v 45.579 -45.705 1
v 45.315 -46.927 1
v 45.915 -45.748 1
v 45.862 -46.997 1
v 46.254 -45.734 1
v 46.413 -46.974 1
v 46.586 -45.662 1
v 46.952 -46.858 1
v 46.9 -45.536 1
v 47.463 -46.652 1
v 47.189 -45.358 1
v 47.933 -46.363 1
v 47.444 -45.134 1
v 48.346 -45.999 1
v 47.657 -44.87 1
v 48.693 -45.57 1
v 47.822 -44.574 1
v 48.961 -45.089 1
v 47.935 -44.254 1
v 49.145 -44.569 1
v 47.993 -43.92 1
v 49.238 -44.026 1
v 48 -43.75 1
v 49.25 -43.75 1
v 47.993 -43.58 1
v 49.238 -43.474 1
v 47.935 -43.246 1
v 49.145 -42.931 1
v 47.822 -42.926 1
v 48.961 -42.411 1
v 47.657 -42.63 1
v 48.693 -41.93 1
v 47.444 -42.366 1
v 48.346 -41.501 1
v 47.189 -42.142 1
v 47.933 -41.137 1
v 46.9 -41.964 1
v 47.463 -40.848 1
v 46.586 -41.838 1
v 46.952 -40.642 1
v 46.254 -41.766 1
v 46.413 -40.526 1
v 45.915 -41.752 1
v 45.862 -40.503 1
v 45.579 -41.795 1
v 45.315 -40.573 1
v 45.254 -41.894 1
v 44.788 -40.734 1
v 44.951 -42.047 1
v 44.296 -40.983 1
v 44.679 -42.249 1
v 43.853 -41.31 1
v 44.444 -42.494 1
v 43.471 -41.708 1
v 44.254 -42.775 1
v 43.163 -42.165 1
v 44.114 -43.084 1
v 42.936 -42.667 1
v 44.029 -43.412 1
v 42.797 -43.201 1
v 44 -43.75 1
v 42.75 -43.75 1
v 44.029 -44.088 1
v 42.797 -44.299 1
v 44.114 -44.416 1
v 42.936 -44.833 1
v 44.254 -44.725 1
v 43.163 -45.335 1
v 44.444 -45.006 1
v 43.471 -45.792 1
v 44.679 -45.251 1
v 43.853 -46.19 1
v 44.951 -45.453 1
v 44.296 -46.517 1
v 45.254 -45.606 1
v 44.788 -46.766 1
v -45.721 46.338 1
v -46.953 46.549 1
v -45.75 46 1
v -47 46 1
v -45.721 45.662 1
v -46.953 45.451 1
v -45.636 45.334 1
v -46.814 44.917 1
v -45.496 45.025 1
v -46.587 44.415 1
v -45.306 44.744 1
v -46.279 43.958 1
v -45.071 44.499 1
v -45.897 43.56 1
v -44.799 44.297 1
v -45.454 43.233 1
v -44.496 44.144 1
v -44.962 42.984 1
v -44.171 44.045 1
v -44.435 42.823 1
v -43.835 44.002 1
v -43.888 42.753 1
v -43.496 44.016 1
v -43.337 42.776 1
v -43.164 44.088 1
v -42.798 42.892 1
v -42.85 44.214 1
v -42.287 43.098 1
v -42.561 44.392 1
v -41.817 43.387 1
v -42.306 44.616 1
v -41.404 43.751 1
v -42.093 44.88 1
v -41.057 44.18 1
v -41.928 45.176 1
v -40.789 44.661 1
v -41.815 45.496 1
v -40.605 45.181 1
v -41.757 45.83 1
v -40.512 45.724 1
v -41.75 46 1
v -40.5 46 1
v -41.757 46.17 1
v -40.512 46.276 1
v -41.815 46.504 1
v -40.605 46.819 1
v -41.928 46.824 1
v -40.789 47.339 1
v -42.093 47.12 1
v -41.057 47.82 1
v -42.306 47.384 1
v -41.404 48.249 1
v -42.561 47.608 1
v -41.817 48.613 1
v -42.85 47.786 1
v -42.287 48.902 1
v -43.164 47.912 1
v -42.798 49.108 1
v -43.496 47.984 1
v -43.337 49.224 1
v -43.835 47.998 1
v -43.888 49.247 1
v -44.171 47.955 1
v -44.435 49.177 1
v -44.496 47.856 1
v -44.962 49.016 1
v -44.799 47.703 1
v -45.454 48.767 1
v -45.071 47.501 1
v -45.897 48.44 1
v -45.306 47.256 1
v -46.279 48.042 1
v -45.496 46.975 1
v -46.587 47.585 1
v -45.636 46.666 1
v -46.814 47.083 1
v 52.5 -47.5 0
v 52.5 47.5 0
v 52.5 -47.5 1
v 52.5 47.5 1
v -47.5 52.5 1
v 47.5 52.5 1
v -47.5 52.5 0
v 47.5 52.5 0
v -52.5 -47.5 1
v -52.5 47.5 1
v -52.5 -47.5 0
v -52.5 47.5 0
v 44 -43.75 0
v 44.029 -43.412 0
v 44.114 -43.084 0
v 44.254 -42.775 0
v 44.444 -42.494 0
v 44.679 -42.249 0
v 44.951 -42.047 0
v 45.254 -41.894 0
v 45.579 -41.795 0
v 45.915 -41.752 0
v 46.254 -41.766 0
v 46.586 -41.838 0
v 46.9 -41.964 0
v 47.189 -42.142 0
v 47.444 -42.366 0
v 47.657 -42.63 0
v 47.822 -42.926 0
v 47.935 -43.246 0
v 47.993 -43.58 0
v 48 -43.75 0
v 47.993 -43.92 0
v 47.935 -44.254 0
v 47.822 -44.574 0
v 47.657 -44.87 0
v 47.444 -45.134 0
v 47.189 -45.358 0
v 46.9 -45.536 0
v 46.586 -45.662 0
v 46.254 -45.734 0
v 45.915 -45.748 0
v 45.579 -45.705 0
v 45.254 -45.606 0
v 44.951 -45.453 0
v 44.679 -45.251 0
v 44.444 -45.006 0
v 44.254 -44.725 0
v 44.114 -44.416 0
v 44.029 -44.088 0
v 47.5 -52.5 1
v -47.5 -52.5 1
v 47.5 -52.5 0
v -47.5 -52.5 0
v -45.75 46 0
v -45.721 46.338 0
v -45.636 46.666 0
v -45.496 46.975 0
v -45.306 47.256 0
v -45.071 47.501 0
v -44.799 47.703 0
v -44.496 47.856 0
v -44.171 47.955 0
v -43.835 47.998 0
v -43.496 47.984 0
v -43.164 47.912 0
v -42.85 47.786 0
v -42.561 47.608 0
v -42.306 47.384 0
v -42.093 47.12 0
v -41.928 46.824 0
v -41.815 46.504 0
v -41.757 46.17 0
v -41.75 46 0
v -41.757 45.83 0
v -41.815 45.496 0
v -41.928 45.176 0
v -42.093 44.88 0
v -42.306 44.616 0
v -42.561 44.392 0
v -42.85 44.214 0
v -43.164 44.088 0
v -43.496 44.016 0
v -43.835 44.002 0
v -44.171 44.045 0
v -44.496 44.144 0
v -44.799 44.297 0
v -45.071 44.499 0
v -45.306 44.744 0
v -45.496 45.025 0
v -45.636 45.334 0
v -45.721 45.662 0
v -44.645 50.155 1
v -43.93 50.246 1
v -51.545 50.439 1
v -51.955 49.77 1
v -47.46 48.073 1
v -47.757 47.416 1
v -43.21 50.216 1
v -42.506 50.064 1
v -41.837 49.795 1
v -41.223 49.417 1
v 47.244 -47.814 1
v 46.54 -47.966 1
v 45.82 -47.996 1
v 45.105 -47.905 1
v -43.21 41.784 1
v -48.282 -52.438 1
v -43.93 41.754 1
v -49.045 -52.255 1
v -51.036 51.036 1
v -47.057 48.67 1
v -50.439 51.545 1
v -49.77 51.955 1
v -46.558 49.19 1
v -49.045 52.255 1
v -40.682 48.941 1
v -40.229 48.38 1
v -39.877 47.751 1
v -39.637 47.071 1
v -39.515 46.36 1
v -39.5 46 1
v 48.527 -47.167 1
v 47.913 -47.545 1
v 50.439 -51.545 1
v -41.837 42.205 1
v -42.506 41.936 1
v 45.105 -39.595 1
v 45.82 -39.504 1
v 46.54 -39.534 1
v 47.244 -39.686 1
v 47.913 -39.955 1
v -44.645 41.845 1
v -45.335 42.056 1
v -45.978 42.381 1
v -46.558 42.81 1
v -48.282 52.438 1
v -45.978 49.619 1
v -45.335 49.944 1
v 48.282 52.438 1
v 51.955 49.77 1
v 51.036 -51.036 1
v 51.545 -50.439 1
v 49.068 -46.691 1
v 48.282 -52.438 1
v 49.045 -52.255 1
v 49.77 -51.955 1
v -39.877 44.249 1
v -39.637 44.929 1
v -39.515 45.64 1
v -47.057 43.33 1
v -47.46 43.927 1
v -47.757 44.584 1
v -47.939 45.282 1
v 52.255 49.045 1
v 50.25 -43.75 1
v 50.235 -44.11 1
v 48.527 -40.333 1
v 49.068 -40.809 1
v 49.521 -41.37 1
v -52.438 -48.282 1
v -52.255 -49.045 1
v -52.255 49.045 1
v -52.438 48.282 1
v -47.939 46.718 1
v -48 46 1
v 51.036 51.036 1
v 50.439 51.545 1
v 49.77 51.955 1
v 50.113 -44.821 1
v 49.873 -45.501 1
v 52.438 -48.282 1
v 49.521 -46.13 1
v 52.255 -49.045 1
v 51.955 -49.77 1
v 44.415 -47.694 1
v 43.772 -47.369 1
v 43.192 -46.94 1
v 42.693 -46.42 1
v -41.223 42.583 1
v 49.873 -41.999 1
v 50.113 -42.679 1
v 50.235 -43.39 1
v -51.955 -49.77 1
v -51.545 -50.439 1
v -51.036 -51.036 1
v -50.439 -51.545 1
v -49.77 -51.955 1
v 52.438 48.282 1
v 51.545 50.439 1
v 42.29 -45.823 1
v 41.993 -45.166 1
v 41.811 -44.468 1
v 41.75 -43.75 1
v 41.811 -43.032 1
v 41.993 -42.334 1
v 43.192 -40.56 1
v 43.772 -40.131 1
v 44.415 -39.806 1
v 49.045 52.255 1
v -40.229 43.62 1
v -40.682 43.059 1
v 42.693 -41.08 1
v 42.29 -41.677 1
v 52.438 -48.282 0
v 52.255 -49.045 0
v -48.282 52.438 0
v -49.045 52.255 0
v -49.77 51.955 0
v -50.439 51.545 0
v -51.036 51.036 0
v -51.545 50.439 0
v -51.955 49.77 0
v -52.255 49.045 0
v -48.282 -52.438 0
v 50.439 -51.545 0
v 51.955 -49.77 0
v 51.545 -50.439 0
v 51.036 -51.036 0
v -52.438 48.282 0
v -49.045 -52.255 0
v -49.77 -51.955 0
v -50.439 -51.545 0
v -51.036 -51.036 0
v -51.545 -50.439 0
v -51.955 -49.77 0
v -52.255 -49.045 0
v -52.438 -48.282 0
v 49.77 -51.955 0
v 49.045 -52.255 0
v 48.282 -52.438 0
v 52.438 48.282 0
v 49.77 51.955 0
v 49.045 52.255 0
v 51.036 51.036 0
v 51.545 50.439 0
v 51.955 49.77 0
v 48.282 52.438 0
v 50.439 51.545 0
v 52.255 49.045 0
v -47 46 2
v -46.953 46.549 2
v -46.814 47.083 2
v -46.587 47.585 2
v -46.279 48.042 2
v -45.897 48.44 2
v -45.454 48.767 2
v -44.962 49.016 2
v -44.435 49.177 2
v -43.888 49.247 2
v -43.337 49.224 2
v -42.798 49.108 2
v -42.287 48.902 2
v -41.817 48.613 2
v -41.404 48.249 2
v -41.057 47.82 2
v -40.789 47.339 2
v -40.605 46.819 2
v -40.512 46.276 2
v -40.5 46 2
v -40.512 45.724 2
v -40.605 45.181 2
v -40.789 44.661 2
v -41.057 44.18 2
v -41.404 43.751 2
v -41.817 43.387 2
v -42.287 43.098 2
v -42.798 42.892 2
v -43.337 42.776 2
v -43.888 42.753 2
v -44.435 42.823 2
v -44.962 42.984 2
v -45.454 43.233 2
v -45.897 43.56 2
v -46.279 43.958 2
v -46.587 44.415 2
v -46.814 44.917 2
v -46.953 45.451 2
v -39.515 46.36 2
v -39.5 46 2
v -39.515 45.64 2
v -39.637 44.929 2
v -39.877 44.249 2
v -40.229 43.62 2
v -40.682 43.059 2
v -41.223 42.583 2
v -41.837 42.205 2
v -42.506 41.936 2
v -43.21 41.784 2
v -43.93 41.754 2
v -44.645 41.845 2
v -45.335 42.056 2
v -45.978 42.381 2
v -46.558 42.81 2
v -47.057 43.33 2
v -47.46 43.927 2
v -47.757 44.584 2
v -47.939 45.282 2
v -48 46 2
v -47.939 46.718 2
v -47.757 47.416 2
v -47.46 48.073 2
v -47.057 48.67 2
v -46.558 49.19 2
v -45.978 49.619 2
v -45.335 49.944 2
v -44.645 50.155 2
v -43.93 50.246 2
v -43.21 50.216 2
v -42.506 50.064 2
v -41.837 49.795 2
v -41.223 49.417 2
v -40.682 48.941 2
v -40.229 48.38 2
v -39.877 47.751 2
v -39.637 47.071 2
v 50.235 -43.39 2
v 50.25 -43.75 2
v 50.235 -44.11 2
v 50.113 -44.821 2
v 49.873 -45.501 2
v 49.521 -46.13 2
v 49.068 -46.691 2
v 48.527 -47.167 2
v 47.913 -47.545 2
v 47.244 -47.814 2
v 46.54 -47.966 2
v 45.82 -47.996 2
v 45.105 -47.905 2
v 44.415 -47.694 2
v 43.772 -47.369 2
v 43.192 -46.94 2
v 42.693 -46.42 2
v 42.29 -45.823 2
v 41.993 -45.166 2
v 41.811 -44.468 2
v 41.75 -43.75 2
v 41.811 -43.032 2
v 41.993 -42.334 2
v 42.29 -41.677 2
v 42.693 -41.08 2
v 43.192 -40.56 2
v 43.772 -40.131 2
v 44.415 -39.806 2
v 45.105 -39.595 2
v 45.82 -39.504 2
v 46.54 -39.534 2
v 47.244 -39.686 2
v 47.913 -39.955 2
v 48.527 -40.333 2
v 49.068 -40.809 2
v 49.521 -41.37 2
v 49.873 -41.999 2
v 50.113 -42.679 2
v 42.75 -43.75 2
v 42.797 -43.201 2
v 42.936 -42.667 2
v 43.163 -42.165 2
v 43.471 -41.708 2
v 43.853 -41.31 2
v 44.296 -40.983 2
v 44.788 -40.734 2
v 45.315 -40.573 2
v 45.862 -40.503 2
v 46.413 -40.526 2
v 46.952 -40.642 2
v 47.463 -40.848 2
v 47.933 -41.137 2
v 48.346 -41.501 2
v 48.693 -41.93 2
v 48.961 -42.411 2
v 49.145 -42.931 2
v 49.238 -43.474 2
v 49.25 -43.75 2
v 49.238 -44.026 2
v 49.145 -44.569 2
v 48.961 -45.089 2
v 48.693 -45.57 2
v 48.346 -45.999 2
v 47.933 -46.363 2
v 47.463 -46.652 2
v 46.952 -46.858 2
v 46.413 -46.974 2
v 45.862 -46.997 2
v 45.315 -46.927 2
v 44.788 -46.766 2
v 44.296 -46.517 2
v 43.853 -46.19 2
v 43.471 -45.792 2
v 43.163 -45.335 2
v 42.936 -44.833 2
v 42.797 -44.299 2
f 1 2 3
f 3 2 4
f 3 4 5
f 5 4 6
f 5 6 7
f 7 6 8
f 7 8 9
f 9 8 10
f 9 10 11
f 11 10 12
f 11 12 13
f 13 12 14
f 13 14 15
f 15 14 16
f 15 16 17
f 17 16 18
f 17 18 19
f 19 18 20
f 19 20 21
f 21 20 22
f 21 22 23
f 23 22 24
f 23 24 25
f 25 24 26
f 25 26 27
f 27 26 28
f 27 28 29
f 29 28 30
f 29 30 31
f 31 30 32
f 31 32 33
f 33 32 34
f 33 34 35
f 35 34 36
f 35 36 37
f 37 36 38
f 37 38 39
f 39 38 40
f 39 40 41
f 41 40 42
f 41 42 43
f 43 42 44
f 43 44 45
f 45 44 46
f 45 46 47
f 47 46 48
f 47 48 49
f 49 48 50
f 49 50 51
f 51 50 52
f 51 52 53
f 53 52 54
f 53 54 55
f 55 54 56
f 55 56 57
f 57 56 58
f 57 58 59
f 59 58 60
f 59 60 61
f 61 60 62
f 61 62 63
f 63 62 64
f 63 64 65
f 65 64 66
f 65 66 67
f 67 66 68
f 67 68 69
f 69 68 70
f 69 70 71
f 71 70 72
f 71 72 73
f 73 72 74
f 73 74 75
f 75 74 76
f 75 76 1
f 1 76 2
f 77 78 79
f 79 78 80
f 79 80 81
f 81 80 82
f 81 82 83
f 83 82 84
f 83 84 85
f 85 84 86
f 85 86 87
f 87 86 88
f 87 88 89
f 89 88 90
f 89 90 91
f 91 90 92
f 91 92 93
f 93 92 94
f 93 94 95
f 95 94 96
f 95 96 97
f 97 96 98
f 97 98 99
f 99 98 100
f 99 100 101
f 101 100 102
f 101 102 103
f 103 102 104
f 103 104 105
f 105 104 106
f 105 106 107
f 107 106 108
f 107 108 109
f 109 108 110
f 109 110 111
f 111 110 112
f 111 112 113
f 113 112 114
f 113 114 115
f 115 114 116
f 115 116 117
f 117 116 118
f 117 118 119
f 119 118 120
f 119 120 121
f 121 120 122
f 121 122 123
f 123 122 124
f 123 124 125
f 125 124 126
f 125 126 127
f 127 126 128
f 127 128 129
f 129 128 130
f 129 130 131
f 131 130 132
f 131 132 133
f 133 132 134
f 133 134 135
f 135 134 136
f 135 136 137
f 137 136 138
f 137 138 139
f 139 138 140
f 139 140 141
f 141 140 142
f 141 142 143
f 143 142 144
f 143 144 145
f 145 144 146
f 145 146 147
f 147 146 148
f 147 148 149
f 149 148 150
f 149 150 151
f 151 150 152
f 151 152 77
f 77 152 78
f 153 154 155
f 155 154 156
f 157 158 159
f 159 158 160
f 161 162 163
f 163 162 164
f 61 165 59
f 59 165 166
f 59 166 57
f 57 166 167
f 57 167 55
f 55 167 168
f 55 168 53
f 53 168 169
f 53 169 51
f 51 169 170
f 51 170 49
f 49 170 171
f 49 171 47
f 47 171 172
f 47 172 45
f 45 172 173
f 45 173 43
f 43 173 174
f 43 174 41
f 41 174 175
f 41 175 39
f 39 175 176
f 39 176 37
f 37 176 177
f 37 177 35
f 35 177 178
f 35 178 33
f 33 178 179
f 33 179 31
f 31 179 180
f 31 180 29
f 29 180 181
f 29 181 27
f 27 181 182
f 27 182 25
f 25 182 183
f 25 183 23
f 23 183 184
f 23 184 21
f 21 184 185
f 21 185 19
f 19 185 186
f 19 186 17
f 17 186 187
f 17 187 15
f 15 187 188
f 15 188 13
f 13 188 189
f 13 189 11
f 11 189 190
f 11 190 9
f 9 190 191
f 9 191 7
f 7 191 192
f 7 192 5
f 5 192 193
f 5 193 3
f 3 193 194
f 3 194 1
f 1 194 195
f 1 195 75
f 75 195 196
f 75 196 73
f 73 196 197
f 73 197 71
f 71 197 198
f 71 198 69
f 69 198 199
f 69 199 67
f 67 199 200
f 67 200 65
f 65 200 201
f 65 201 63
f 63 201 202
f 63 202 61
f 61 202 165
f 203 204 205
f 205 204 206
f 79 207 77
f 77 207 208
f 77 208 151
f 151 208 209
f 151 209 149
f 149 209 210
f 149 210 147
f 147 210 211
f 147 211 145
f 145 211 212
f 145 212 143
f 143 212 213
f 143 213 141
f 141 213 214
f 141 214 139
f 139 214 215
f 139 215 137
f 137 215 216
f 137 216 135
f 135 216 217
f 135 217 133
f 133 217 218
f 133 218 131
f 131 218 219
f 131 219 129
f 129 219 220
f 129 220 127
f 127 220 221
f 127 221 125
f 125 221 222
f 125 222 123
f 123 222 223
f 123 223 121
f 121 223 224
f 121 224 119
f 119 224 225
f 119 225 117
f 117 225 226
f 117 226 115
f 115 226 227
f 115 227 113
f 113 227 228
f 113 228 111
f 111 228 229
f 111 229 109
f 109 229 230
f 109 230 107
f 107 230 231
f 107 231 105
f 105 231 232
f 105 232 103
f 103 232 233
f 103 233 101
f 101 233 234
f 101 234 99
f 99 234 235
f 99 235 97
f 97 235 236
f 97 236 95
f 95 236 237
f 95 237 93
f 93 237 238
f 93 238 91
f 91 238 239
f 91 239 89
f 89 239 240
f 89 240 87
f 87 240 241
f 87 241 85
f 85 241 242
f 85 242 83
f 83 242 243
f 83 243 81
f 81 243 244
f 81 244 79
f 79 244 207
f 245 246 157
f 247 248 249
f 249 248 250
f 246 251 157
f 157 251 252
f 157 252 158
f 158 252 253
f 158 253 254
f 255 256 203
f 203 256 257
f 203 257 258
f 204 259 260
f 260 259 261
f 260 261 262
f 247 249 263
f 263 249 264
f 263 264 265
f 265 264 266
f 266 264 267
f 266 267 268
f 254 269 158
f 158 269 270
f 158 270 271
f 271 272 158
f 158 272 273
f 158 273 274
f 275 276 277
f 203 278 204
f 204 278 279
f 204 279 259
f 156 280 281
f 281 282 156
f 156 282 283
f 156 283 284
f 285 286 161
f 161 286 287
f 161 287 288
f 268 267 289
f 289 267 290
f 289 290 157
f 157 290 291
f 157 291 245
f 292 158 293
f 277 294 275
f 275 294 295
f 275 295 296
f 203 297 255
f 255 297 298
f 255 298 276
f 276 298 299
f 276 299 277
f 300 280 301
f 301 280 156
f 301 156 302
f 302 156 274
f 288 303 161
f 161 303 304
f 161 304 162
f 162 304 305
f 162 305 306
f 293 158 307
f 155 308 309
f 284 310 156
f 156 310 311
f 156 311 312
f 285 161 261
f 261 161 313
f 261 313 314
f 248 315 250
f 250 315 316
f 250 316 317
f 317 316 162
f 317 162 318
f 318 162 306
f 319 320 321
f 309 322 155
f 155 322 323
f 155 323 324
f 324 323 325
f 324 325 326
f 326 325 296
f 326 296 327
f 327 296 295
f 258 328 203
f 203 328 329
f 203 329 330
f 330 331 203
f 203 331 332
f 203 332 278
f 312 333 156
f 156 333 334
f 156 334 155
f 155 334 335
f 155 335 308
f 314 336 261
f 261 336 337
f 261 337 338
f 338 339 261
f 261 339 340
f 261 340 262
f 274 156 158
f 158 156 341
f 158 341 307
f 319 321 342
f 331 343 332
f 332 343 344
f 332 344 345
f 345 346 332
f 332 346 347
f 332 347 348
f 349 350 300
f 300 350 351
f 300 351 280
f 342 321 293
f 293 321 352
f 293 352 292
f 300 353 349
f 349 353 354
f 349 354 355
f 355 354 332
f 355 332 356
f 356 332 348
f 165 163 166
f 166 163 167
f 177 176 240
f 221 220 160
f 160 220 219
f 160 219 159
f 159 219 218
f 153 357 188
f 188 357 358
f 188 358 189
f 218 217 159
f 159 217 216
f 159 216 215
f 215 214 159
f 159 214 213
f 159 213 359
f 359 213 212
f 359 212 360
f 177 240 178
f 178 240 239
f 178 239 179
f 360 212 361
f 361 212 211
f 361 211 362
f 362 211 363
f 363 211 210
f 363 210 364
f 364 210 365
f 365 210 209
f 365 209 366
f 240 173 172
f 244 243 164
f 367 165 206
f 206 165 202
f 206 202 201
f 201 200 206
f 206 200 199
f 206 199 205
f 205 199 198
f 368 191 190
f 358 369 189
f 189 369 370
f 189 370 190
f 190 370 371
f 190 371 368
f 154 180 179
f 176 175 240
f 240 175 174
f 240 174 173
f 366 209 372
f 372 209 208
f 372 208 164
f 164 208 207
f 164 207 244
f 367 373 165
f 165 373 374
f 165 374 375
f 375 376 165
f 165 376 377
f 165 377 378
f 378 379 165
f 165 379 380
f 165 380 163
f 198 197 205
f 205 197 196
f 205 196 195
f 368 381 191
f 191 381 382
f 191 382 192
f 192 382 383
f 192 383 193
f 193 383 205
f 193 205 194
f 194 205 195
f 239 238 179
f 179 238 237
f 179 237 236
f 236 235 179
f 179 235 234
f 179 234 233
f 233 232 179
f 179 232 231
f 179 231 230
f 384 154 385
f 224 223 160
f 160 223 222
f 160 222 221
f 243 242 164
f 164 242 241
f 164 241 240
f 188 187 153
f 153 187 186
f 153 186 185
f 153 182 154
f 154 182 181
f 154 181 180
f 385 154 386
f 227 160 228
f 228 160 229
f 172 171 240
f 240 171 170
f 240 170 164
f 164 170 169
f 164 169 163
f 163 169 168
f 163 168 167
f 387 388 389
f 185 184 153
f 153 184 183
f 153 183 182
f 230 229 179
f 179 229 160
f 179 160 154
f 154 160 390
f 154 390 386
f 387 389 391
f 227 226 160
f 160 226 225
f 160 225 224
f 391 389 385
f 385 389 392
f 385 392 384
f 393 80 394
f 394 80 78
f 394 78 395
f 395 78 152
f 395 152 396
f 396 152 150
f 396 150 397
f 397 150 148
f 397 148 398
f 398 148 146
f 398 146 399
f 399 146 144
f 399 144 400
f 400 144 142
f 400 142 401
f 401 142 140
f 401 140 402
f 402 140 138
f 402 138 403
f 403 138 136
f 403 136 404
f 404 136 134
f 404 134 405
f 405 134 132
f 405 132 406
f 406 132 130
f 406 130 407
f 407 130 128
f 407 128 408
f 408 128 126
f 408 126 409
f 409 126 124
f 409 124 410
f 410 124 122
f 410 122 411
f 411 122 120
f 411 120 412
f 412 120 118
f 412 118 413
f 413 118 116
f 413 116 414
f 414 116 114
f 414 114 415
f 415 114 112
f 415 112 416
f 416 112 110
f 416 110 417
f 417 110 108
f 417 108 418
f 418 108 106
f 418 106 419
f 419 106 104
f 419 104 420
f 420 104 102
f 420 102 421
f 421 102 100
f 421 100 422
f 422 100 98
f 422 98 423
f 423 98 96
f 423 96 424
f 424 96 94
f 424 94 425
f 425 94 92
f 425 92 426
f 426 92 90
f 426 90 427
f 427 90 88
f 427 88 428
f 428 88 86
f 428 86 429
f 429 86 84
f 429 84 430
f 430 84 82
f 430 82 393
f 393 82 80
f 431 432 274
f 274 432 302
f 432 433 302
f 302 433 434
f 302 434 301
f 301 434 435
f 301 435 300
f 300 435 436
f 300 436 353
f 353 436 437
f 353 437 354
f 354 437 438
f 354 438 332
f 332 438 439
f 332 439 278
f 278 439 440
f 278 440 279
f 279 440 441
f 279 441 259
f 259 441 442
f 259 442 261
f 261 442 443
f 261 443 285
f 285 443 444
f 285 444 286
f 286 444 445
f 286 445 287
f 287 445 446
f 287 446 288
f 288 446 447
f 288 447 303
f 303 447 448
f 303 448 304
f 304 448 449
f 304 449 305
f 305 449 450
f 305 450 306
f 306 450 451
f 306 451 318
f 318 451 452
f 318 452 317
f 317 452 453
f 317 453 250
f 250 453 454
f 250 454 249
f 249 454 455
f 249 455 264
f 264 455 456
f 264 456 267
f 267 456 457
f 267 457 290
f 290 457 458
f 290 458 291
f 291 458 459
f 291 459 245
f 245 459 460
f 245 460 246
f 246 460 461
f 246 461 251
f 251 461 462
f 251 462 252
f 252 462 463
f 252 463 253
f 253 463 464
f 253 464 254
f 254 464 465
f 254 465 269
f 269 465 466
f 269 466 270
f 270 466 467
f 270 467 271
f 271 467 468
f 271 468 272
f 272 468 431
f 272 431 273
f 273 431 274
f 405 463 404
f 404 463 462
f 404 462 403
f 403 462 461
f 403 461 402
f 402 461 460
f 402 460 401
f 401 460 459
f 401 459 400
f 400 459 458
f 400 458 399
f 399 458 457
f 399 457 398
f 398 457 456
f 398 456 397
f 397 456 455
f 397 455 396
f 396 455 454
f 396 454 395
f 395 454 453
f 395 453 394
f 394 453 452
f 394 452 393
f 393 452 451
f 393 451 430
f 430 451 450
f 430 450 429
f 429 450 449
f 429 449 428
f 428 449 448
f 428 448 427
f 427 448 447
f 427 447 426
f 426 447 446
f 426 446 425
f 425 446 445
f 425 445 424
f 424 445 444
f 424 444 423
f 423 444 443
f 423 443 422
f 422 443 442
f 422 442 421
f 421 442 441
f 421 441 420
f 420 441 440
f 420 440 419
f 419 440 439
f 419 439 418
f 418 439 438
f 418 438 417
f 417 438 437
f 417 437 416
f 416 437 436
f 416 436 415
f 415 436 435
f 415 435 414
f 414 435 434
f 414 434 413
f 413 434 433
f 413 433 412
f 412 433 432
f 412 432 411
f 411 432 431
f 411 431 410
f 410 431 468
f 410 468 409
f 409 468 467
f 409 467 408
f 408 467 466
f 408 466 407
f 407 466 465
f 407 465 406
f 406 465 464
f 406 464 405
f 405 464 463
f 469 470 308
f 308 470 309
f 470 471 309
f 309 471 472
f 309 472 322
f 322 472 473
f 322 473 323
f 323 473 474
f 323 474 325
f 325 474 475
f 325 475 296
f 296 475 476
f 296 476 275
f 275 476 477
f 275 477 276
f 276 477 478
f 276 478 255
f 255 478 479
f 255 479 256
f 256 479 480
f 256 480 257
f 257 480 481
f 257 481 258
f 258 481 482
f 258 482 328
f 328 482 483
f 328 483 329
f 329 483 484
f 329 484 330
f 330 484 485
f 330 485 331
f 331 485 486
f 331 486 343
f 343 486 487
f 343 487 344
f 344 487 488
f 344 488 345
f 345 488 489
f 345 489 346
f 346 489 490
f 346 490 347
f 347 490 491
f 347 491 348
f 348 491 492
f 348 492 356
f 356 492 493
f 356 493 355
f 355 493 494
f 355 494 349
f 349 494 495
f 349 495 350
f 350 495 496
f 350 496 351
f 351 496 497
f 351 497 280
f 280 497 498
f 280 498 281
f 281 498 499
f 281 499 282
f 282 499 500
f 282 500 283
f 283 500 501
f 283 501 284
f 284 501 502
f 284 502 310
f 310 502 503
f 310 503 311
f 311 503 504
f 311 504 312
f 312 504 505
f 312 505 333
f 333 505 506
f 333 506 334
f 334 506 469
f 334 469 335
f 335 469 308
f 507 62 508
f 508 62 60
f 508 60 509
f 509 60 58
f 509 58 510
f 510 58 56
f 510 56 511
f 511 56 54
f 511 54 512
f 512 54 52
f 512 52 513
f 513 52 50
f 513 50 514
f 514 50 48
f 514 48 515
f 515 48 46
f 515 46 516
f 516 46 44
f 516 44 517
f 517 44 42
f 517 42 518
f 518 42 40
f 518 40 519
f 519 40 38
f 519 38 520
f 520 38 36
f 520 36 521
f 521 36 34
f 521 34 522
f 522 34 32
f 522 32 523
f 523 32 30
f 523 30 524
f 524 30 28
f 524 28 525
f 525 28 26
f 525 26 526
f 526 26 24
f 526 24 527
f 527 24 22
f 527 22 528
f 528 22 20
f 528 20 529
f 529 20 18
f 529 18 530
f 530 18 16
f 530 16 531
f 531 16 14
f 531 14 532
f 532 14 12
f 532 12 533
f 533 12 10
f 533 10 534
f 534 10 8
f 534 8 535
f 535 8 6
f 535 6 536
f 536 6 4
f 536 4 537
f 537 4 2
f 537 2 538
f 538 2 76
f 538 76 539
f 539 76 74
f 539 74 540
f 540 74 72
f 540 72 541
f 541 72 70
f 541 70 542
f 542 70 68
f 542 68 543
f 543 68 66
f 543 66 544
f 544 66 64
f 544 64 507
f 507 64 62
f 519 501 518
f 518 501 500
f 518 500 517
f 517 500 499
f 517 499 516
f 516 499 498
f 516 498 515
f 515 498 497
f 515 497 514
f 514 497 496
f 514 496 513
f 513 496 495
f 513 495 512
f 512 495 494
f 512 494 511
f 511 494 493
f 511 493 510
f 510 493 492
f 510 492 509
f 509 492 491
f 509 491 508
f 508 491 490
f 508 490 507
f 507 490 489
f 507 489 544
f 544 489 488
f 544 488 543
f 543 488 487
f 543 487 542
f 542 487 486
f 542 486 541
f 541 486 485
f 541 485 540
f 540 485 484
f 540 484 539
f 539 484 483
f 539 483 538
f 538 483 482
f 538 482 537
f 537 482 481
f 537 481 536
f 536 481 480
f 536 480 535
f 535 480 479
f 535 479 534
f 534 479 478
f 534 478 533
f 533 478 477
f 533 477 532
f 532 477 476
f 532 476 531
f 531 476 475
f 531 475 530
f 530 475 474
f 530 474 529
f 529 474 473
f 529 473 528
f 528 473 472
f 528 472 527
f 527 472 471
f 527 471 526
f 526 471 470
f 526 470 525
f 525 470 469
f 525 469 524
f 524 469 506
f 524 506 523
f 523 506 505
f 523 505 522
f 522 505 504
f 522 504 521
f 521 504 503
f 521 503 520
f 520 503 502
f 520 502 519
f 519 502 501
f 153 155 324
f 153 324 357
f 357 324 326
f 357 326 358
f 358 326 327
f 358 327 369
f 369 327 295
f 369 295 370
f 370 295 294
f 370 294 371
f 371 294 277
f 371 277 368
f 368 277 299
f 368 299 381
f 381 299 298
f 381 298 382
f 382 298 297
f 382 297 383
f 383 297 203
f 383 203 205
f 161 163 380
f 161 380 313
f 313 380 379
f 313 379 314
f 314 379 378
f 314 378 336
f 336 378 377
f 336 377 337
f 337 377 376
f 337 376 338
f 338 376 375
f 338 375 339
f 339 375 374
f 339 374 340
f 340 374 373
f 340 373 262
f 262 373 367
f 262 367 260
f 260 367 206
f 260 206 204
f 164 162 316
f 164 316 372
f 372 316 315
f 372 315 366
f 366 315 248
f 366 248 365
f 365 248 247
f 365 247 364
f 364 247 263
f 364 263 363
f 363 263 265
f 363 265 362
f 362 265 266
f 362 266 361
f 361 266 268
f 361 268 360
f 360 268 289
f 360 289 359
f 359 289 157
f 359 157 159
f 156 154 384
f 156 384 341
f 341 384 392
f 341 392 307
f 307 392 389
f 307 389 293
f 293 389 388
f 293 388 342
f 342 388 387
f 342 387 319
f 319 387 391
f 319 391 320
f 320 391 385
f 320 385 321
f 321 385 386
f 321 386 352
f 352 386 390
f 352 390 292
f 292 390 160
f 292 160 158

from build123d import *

# Parameters (mm, degrees)
ESQUISSE1_W        = 105
ESQUISSE1_H        = 105
ESQUISSE1_R        = 2
BOSS_EXTRU_1_DEPTH = 1
ESQUISSE1_4_R      = 4.25
ESQUISSE1_4_R_2    = 3.25
BOSS_EXTRU_3_DEPTH = 2
CONG_1_R           = 5


with BuildPart() as part:
    # Esquisse1 → Boss.-Extru.1 (new body)
    with BuildSketch(Plane.XY):
        Rectangle(ESQUISSE1_W, ESQUISSE1_H)
        with Locations((46, -43.75)):
            Circle(ESQUISSE1_R, mode=Mode.SUBTRACT)
        with Locations((-43.75, 46)):
            Circle(ESQUISSE1_R, mode=Mode.SUBTRACT)
    extrude(amount=BOSS_EXTRU_1_DEPTH)

    # Esquisse1<4> → Boss.-Extru.3 (add)
    # profile 1 of 2: a face of its own
    with BuildSketch(Plane.XY):
        with Locations((-43.75, 46)):
            Circle(ESQUISSE1_4_R)
        with Locations((-43.75, 46)):
            Circle(ESQUISSE1_4_R_2, mode=Mode.SUBTRACT)
    # profile 2 of 2: a face of its own
    with BuildSketch(Plane.XY):
        with Locations((46, -43.75)):
            Circle(ESQUISSE1_4_R)
        with Locations((46, -43.75)):
            Circle(ESQUISSE1_4_R_2, mode=Mode.SUBTRACT)
    extrude(amount=BOSS_EXTRU_3_DEPTH)

    # Congé1
    cong_1_edges = [part.edges().sort_by_distance(p)[0] for p in [
        (52.5, -52.5, 0.5),
        (-52.5, -52.5, 0.5),
        (-52.5, 52.5, 0.5),
        (52.5, 52.5, 0.5),
    ]]
    fillet(cong_1_edges, radius=CONG_1_R)


solid = part.part
